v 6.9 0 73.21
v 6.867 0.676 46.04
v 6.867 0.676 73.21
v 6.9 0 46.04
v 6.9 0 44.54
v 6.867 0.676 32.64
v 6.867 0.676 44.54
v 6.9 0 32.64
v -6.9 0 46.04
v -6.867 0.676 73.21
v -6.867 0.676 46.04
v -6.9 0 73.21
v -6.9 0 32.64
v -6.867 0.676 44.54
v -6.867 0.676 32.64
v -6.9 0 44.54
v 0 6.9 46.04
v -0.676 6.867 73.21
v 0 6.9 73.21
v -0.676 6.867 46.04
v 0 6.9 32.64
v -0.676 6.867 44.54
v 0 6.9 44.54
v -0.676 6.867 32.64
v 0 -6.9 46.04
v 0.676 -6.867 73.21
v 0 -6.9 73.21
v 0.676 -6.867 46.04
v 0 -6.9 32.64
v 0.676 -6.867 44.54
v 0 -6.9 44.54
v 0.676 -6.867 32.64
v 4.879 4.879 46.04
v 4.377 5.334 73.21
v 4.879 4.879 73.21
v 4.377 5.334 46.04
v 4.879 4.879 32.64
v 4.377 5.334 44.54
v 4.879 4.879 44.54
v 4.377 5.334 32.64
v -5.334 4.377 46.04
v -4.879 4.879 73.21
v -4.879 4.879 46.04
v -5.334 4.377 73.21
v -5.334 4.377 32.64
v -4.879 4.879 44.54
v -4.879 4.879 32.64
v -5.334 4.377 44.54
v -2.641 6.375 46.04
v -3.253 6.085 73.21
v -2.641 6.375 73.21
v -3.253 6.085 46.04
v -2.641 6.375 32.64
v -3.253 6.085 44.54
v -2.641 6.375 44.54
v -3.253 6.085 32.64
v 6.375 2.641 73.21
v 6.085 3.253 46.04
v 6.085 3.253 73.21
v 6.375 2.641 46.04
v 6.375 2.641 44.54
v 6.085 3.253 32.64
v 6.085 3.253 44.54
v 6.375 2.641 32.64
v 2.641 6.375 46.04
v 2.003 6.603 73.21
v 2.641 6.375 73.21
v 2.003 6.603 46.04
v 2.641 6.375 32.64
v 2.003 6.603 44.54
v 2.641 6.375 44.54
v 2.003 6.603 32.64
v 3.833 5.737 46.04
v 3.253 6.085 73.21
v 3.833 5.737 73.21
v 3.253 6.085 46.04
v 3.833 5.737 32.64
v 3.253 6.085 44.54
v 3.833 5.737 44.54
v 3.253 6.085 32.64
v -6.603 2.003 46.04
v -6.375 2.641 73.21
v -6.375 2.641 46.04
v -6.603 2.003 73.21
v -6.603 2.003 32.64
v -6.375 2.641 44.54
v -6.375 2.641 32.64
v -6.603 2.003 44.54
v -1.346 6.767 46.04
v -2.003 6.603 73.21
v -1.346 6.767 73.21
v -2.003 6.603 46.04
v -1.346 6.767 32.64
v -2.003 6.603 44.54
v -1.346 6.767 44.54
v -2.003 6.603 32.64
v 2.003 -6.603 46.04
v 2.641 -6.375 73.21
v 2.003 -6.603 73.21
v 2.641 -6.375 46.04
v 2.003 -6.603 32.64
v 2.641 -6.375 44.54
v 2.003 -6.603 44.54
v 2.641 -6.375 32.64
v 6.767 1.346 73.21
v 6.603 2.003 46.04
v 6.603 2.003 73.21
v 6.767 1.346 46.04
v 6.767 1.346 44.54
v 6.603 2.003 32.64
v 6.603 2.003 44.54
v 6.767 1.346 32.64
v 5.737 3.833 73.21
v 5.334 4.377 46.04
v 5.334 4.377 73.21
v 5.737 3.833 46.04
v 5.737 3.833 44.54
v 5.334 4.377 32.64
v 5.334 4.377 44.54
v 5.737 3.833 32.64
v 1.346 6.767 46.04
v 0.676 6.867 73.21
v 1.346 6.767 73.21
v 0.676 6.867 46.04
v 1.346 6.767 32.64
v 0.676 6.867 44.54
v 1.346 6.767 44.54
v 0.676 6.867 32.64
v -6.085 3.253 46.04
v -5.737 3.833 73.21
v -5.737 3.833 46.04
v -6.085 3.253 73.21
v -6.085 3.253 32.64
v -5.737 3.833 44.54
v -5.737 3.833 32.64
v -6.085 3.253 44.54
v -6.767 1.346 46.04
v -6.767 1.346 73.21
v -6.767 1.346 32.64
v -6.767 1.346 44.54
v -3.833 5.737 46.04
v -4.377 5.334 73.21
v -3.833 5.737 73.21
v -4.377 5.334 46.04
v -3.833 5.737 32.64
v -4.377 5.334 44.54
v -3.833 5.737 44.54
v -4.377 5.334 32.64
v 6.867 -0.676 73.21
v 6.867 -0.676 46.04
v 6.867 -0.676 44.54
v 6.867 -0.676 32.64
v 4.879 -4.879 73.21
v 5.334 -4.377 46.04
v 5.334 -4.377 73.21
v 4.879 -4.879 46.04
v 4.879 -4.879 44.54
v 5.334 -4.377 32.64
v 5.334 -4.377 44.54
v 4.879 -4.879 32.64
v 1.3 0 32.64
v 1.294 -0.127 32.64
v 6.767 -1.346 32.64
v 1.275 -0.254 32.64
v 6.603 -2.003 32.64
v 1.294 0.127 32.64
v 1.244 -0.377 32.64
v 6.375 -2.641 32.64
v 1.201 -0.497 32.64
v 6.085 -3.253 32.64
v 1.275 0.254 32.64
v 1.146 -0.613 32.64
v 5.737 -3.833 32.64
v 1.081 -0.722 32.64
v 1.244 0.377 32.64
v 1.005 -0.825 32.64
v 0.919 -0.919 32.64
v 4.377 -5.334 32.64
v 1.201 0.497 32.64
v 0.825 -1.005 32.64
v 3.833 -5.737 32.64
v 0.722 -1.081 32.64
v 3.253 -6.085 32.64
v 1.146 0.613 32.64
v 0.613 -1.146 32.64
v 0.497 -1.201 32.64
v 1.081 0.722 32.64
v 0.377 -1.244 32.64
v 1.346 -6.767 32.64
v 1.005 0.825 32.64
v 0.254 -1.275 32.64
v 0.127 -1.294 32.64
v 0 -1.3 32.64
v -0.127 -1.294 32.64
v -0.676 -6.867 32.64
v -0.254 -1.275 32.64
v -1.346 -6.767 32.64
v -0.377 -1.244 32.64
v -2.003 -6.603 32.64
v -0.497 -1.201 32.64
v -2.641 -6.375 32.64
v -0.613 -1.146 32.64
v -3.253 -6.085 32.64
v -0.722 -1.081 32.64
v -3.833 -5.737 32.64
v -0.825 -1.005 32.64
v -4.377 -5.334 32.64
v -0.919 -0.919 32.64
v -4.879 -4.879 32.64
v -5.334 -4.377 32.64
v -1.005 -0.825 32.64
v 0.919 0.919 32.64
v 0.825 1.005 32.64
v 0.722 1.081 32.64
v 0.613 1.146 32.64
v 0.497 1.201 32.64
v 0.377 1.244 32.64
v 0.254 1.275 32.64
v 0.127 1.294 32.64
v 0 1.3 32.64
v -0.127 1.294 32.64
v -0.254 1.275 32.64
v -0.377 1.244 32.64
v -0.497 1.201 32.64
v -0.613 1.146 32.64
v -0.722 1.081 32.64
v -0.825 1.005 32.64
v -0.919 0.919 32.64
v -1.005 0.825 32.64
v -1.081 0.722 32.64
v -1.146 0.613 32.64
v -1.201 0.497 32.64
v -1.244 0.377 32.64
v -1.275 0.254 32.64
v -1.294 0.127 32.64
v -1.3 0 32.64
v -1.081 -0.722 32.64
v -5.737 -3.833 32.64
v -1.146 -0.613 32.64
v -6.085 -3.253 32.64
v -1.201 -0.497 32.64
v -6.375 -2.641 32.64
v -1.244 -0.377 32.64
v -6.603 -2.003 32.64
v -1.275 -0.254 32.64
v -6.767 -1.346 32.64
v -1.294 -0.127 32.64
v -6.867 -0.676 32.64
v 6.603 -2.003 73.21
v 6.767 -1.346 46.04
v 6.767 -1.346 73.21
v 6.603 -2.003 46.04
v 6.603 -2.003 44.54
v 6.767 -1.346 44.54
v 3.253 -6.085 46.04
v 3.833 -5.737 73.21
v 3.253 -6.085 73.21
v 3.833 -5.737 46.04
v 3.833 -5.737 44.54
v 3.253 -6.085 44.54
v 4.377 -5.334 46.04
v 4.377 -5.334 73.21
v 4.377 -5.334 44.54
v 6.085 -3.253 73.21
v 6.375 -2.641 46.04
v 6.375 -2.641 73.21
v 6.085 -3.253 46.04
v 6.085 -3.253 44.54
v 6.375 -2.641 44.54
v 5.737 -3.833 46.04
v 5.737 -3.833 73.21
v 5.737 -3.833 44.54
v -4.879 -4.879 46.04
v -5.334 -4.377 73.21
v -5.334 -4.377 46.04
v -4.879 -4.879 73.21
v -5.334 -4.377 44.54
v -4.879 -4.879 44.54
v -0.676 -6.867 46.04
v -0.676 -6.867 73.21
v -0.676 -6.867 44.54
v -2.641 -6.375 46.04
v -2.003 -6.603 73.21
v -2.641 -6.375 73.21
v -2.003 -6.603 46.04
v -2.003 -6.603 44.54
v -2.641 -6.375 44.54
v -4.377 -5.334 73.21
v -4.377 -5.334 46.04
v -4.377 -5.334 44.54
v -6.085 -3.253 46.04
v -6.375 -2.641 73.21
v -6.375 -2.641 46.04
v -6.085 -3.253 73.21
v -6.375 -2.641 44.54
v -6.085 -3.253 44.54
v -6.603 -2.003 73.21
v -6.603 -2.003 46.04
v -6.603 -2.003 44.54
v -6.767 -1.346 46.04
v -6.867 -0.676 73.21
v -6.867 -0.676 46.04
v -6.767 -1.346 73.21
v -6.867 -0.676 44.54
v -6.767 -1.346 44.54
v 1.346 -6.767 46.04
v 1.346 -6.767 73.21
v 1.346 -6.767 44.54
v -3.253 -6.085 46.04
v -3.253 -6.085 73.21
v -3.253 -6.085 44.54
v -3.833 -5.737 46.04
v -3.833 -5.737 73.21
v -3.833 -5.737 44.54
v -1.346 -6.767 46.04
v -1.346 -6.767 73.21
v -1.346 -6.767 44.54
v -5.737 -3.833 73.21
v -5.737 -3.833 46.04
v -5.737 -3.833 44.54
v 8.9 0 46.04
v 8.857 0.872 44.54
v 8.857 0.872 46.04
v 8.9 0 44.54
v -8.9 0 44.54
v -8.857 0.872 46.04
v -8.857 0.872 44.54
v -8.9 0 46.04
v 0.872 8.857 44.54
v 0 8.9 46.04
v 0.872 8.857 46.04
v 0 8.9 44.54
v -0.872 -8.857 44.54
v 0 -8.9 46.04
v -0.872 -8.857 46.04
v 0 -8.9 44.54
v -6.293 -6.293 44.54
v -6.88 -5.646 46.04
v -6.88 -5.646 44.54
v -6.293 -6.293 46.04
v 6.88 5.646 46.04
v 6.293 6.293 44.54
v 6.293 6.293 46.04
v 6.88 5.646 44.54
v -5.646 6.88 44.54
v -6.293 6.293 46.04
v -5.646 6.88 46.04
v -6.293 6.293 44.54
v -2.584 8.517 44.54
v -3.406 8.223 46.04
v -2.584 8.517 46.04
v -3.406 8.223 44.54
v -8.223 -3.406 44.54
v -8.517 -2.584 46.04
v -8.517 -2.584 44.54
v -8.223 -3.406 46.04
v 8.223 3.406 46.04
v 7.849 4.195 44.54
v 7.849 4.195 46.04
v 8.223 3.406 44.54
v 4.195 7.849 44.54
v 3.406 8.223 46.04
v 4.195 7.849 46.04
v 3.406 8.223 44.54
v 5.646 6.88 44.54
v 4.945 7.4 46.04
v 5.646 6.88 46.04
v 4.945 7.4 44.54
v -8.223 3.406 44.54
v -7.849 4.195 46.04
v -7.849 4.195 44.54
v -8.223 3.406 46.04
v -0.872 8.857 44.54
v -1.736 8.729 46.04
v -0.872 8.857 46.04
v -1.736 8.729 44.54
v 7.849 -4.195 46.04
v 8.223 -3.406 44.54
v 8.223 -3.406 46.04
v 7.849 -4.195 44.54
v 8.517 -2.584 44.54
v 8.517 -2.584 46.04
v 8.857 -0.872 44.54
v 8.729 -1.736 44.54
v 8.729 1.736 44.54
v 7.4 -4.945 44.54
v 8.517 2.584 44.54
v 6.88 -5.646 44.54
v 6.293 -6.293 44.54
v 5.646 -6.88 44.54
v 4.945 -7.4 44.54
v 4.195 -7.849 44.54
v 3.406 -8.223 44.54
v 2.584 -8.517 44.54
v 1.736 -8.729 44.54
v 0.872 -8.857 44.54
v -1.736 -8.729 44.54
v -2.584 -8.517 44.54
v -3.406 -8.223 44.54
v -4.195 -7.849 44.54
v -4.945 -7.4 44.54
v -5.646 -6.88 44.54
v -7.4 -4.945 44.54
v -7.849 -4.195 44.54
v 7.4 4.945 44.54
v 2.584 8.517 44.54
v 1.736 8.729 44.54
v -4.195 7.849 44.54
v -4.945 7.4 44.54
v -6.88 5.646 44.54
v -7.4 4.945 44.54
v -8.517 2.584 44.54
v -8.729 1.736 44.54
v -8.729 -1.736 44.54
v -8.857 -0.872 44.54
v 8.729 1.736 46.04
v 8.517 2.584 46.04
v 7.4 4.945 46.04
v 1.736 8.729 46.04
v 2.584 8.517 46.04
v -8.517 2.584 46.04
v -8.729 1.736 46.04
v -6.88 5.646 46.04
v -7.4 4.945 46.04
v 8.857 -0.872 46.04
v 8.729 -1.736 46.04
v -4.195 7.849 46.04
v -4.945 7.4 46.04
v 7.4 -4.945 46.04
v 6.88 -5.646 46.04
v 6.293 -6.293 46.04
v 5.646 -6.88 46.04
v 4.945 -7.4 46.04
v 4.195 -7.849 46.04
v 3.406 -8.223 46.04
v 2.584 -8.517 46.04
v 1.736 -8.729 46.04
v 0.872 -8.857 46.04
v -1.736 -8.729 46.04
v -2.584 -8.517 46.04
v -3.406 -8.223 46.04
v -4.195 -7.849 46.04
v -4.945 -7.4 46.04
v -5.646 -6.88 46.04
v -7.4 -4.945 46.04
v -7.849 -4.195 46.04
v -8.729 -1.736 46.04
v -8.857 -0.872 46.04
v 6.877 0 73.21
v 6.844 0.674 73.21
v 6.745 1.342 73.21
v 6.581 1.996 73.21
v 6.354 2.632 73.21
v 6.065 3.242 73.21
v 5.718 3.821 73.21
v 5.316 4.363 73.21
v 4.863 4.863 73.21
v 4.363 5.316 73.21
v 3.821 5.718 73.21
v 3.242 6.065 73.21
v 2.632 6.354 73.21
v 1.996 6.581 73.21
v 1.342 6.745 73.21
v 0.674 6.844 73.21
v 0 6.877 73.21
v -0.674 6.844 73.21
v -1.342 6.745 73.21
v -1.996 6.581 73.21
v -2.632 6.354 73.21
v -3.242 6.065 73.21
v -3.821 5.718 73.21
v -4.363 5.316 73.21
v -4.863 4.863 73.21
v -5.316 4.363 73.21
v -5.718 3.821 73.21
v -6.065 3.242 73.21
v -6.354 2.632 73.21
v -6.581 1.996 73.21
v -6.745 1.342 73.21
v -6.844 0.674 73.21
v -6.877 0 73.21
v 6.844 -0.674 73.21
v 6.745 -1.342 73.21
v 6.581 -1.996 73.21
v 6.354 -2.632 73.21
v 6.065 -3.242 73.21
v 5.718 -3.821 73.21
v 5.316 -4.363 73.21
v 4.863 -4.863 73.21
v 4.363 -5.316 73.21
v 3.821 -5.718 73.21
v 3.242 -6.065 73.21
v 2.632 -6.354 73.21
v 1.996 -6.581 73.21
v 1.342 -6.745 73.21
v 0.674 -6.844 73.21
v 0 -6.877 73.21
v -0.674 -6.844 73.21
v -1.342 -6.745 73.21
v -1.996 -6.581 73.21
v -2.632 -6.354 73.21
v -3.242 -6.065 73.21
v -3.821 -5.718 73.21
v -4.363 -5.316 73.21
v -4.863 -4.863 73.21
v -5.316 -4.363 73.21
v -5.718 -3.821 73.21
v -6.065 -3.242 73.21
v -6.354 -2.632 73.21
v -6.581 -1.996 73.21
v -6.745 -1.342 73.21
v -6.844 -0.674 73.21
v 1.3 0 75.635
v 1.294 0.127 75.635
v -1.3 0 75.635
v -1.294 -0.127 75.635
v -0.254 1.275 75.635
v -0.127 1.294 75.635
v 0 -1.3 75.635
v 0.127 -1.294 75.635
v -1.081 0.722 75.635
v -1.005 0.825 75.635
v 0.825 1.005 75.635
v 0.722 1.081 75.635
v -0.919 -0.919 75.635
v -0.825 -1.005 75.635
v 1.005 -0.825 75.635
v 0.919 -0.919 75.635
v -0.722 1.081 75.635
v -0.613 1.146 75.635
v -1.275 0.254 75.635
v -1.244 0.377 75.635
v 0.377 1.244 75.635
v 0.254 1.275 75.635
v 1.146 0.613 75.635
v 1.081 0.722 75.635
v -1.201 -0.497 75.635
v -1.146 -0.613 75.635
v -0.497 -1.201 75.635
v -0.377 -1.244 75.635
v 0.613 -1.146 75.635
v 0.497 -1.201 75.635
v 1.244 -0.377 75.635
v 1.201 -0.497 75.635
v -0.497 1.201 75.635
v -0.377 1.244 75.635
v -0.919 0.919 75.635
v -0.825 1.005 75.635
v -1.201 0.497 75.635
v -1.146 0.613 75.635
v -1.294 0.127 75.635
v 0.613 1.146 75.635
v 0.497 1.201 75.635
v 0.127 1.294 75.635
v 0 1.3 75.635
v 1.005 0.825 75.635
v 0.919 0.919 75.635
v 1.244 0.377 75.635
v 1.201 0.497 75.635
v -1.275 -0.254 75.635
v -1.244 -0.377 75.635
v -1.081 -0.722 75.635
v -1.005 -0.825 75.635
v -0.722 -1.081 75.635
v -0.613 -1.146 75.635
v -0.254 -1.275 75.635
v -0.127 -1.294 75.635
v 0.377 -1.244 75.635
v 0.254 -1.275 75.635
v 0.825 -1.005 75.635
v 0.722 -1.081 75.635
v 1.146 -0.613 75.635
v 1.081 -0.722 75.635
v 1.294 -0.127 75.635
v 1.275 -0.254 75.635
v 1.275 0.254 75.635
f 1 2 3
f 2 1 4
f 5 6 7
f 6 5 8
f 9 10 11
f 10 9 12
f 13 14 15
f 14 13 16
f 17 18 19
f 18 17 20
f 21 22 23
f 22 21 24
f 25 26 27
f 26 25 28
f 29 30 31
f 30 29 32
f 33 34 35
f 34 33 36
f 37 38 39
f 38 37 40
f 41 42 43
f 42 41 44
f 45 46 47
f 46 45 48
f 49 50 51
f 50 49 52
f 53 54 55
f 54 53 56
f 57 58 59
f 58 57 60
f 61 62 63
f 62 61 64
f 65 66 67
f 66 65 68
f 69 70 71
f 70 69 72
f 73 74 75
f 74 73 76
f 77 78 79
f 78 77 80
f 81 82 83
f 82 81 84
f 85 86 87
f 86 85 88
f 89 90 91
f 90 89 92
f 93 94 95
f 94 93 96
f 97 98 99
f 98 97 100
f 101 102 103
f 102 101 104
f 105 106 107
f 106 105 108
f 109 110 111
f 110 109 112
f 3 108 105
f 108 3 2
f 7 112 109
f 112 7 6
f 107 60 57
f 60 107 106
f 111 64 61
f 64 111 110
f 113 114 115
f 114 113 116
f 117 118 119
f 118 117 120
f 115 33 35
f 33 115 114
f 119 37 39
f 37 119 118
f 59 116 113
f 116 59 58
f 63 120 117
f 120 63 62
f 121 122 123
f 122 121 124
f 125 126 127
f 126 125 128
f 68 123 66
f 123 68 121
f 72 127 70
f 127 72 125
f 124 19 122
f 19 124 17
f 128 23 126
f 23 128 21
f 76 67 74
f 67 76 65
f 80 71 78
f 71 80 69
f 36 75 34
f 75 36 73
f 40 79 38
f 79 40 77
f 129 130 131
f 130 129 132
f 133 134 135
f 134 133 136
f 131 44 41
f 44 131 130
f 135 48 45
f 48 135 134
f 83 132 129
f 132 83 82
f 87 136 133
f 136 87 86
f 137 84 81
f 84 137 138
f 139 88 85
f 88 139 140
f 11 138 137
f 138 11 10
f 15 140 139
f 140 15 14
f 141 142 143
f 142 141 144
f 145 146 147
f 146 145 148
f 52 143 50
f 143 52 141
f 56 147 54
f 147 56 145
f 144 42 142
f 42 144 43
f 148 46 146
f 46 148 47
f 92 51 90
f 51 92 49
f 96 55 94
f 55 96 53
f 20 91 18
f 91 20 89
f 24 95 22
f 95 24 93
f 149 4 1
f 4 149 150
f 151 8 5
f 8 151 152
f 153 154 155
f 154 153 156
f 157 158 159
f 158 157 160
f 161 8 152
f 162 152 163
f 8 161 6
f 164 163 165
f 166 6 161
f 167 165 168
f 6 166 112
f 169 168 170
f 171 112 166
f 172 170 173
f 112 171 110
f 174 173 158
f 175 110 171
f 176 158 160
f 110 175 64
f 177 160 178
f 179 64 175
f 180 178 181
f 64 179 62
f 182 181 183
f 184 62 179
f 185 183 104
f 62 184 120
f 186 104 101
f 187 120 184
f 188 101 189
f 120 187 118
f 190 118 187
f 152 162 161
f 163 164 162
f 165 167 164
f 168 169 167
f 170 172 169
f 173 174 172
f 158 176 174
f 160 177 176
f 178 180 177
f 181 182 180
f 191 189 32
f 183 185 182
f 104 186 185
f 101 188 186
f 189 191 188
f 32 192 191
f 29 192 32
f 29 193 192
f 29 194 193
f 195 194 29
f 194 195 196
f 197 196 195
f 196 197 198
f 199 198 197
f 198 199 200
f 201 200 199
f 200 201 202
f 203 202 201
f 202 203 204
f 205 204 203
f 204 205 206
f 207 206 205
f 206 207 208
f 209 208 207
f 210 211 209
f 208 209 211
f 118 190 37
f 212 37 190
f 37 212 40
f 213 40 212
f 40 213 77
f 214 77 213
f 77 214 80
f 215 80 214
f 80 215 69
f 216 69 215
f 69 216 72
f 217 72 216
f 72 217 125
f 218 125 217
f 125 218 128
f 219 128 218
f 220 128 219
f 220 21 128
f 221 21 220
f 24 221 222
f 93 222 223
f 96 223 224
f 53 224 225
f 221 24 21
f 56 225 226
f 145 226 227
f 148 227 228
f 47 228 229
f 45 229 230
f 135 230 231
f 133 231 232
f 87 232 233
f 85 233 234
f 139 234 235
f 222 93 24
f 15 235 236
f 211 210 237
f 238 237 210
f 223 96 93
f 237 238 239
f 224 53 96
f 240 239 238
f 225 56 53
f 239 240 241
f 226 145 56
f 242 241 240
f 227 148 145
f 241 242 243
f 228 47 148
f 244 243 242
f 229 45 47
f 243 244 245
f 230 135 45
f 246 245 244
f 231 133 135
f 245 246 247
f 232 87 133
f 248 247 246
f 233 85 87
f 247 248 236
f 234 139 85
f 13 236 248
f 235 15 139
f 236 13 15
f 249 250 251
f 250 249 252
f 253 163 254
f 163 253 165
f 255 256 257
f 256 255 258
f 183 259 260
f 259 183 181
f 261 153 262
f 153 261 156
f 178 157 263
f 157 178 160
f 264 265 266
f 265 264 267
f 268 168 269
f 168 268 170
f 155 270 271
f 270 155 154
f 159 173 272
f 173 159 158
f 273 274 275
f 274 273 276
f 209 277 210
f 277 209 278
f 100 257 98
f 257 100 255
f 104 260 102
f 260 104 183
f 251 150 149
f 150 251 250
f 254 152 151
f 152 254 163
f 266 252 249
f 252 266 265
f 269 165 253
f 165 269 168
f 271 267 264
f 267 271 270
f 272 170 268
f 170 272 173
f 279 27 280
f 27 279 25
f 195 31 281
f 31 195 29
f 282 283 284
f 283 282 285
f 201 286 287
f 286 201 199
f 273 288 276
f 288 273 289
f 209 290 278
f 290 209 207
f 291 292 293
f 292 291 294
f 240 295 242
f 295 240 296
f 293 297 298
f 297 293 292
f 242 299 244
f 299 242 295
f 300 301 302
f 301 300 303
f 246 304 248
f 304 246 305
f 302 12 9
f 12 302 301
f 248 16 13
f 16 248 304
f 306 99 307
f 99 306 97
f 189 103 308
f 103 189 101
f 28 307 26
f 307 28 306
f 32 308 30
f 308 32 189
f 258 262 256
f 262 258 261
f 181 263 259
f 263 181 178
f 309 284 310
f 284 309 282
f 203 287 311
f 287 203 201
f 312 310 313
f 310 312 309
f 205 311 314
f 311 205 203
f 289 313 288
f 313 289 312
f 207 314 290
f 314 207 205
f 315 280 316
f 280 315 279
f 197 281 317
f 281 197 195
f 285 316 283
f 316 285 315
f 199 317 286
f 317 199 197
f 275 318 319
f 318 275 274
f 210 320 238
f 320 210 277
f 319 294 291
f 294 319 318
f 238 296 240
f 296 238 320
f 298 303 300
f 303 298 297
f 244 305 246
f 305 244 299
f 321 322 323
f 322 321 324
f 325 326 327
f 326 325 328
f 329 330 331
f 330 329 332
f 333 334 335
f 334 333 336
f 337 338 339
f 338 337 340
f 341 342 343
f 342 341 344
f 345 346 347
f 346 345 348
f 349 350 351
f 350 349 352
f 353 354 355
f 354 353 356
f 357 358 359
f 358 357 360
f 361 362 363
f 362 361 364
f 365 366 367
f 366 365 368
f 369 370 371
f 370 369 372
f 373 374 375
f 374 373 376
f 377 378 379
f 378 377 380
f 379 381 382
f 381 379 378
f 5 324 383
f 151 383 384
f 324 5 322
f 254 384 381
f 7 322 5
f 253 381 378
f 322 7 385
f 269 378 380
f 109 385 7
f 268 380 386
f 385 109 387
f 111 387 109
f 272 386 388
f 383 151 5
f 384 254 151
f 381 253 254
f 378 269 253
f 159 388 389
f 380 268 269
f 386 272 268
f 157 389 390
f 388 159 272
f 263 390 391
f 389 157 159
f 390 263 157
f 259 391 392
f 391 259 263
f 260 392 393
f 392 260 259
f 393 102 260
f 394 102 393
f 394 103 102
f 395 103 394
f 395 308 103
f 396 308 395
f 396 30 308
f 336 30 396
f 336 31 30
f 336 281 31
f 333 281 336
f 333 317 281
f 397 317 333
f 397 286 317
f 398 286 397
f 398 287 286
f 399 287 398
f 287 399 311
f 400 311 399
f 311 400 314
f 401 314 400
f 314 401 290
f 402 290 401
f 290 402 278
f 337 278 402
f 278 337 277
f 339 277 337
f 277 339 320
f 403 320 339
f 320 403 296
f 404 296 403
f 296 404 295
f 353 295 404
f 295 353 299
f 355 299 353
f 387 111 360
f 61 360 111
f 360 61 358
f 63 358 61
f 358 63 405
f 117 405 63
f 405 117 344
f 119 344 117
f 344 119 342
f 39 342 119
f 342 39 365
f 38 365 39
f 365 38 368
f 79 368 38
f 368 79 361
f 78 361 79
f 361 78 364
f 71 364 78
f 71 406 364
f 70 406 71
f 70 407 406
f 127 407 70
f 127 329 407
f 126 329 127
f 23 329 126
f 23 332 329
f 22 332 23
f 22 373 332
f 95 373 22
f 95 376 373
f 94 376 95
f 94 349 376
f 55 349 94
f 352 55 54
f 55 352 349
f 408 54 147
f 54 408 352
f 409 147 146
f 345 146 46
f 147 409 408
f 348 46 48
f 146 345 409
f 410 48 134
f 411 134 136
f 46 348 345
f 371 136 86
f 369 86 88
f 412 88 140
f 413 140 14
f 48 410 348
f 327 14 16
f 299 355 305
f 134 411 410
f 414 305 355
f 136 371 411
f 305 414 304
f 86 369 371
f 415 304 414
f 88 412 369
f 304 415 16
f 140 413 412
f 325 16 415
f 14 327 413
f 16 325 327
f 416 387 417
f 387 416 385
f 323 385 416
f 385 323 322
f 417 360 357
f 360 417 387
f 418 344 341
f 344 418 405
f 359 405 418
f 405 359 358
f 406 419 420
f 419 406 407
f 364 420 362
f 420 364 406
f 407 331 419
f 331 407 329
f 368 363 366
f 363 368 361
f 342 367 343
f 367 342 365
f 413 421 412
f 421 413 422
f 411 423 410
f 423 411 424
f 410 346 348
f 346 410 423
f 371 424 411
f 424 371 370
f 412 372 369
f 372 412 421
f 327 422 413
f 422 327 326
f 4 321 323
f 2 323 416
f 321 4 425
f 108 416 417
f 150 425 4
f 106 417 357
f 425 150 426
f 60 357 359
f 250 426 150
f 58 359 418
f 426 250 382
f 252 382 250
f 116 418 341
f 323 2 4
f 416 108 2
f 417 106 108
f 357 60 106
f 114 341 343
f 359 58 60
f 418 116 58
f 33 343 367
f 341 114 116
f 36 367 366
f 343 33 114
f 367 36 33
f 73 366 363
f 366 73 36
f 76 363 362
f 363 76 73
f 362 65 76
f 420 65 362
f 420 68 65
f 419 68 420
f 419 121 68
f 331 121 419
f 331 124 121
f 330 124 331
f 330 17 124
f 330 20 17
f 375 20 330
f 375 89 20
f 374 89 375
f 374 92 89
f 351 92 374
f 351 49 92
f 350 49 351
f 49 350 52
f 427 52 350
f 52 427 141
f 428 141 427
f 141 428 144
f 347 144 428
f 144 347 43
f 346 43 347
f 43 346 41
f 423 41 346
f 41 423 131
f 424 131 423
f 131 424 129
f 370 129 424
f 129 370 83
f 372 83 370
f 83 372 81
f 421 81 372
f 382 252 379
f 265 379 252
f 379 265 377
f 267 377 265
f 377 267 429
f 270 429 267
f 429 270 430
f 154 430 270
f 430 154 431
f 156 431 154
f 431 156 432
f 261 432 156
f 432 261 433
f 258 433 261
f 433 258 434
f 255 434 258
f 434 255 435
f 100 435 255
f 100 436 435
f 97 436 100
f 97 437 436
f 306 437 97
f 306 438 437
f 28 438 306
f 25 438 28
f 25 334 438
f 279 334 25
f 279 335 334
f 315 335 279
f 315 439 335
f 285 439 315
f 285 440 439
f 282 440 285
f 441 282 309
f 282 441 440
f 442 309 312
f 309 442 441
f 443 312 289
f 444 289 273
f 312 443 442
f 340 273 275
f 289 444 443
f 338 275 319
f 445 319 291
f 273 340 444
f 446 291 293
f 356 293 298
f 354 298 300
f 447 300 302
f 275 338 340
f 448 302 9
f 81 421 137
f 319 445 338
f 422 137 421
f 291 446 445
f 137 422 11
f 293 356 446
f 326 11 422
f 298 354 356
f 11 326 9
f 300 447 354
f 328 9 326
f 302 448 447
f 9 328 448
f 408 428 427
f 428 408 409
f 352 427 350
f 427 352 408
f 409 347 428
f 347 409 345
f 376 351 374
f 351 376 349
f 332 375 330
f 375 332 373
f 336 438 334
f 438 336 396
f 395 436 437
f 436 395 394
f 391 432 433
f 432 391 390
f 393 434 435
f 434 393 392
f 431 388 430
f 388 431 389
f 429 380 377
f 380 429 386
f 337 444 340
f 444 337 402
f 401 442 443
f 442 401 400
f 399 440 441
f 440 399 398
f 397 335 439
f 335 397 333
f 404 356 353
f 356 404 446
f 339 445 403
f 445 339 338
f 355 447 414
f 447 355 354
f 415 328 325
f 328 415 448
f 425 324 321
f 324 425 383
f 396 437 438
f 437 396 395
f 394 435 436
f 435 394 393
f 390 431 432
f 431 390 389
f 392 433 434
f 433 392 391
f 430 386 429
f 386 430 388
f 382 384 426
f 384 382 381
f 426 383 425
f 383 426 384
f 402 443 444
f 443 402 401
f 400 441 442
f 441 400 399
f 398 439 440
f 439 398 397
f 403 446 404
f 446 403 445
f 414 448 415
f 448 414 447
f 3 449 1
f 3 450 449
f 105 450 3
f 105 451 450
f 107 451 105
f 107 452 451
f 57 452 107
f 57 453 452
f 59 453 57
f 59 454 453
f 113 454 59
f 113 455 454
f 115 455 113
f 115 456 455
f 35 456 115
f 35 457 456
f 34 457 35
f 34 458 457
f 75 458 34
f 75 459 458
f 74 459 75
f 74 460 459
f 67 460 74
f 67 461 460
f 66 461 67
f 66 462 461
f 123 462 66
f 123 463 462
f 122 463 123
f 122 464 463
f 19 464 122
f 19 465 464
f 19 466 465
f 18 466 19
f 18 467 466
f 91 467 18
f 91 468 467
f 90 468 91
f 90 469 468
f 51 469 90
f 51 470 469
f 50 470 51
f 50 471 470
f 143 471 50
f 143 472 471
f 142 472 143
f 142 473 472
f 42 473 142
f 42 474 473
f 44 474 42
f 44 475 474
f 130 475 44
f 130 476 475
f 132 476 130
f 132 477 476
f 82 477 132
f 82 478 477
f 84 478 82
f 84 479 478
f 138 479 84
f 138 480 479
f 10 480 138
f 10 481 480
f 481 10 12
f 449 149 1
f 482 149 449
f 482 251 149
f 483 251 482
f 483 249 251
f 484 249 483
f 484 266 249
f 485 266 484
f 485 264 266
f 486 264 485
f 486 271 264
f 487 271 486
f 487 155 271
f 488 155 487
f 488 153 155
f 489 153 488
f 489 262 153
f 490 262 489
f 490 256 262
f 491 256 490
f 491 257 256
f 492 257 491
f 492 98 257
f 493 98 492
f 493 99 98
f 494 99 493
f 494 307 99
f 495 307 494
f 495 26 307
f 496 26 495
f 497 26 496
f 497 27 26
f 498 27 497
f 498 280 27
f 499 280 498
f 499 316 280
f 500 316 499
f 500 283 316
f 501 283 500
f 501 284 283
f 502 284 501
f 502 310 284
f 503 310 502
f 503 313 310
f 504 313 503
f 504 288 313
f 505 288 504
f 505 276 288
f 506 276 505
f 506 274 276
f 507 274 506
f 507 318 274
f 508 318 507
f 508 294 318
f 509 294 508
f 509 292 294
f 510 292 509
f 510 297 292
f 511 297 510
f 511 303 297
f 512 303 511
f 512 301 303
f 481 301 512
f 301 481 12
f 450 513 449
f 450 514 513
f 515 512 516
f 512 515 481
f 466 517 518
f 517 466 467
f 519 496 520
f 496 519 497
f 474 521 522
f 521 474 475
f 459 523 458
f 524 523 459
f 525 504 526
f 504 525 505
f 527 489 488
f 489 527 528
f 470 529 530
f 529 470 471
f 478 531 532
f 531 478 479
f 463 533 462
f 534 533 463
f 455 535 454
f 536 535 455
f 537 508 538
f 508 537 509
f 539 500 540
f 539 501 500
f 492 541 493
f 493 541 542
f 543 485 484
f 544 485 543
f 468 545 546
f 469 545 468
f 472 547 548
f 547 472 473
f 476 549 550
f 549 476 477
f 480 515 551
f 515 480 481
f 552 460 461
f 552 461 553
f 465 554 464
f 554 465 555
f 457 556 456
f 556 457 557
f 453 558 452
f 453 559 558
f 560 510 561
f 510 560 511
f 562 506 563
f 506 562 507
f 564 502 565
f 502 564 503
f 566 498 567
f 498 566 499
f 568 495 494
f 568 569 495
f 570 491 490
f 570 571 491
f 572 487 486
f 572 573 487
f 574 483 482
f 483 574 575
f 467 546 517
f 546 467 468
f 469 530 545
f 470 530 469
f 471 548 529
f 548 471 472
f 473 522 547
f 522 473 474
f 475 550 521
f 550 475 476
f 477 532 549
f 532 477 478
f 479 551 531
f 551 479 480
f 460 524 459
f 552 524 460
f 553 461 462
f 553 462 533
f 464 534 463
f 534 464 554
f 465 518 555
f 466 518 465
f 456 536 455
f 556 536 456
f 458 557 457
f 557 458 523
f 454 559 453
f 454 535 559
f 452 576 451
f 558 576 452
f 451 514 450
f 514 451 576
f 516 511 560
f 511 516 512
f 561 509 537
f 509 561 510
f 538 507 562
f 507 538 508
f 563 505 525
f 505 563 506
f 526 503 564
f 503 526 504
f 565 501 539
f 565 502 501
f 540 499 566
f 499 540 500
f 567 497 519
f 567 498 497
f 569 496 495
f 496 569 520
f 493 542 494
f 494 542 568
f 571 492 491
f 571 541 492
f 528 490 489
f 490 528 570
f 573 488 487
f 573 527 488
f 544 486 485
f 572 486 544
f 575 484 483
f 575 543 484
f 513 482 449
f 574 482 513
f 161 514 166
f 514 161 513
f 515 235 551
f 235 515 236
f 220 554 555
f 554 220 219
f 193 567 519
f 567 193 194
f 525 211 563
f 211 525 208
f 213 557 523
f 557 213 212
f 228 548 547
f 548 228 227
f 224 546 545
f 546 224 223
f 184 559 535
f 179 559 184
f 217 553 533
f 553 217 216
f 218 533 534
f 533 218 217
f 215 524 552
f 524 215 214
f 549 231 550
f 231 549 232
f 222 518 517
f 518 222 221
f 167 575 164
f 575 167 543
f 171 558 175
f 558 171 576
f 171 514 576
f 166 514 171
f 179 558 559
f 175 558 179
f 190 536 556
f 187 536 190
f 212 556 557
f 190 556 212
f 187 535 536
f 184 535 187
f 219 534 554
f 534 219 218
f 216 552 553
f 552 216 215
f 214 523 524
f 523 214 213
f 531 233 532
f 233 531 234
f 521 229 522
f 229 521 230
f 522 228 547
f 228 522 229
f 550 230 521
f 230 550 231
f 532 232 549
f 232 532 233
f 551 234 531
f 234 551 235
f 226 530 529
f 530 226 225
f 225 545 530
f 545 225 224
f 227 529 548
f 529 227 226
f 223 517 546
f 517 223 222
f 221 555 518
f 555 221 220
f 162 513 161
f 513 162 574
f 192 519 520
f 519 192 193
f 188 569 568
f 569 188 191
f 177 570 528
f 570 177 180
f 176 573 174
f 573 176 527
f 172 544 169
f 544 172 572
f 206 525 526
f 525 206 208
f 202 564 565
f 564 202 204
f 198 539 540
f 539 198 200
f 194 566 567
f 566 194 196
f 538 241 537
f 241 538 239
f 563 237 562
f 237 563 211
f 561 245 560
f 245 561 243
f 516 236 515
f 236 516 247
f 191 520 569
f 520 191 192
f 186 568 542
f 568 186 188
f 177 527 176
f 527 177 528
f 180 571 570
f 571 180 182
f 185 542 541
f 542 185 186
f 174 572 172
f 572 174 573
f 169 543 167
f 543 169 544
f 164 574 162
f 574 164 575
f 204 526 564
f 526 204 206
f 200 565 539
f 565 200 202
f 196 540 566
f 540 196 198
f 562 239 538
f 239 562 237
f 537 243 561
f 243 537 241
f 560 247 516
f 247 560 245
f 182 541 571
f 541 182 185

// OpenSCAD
mm = 1;
in = 25.4*mm;

$fn=64;

tool_length =27.16*mm;
tool_rad = 13.8/2*mm;

nose_len=3*mm;

ring_rad = 17.8/2*mm;
ring_th = 1.5*mm;

tool_butt_height = 13.4*mm;

eps=0.01*mm;

insert_rad=2.6*mm/2;
insert_len=3*in;

total_len = nose_len + tool_length + tool_butt_height;
echo(total_len);

difference(){
    translate([0,0,-total_len+insert_len])
    union(){
        cylinder(r=tool_rad,h=tool_butt_height+eps);
        
        translate([0,0,tool_butt_height-ring_th])
        cylinder(r=ring_rad,h=ring_th);
        translate([0,0,tool_butt_height]);
        
        translate([0,0,tool_butt_height])
        cylinder(r=tool_rad,h=tool_length+eps);
        
        translate([0,0,tool_butt_height+tool_length])
        cylinder(r1=tool_rad,r2=0,h=nose_len);
            
    }
    union(){
        cylinder(r=insert_rad,h=insert_len+eps);
    }
}
